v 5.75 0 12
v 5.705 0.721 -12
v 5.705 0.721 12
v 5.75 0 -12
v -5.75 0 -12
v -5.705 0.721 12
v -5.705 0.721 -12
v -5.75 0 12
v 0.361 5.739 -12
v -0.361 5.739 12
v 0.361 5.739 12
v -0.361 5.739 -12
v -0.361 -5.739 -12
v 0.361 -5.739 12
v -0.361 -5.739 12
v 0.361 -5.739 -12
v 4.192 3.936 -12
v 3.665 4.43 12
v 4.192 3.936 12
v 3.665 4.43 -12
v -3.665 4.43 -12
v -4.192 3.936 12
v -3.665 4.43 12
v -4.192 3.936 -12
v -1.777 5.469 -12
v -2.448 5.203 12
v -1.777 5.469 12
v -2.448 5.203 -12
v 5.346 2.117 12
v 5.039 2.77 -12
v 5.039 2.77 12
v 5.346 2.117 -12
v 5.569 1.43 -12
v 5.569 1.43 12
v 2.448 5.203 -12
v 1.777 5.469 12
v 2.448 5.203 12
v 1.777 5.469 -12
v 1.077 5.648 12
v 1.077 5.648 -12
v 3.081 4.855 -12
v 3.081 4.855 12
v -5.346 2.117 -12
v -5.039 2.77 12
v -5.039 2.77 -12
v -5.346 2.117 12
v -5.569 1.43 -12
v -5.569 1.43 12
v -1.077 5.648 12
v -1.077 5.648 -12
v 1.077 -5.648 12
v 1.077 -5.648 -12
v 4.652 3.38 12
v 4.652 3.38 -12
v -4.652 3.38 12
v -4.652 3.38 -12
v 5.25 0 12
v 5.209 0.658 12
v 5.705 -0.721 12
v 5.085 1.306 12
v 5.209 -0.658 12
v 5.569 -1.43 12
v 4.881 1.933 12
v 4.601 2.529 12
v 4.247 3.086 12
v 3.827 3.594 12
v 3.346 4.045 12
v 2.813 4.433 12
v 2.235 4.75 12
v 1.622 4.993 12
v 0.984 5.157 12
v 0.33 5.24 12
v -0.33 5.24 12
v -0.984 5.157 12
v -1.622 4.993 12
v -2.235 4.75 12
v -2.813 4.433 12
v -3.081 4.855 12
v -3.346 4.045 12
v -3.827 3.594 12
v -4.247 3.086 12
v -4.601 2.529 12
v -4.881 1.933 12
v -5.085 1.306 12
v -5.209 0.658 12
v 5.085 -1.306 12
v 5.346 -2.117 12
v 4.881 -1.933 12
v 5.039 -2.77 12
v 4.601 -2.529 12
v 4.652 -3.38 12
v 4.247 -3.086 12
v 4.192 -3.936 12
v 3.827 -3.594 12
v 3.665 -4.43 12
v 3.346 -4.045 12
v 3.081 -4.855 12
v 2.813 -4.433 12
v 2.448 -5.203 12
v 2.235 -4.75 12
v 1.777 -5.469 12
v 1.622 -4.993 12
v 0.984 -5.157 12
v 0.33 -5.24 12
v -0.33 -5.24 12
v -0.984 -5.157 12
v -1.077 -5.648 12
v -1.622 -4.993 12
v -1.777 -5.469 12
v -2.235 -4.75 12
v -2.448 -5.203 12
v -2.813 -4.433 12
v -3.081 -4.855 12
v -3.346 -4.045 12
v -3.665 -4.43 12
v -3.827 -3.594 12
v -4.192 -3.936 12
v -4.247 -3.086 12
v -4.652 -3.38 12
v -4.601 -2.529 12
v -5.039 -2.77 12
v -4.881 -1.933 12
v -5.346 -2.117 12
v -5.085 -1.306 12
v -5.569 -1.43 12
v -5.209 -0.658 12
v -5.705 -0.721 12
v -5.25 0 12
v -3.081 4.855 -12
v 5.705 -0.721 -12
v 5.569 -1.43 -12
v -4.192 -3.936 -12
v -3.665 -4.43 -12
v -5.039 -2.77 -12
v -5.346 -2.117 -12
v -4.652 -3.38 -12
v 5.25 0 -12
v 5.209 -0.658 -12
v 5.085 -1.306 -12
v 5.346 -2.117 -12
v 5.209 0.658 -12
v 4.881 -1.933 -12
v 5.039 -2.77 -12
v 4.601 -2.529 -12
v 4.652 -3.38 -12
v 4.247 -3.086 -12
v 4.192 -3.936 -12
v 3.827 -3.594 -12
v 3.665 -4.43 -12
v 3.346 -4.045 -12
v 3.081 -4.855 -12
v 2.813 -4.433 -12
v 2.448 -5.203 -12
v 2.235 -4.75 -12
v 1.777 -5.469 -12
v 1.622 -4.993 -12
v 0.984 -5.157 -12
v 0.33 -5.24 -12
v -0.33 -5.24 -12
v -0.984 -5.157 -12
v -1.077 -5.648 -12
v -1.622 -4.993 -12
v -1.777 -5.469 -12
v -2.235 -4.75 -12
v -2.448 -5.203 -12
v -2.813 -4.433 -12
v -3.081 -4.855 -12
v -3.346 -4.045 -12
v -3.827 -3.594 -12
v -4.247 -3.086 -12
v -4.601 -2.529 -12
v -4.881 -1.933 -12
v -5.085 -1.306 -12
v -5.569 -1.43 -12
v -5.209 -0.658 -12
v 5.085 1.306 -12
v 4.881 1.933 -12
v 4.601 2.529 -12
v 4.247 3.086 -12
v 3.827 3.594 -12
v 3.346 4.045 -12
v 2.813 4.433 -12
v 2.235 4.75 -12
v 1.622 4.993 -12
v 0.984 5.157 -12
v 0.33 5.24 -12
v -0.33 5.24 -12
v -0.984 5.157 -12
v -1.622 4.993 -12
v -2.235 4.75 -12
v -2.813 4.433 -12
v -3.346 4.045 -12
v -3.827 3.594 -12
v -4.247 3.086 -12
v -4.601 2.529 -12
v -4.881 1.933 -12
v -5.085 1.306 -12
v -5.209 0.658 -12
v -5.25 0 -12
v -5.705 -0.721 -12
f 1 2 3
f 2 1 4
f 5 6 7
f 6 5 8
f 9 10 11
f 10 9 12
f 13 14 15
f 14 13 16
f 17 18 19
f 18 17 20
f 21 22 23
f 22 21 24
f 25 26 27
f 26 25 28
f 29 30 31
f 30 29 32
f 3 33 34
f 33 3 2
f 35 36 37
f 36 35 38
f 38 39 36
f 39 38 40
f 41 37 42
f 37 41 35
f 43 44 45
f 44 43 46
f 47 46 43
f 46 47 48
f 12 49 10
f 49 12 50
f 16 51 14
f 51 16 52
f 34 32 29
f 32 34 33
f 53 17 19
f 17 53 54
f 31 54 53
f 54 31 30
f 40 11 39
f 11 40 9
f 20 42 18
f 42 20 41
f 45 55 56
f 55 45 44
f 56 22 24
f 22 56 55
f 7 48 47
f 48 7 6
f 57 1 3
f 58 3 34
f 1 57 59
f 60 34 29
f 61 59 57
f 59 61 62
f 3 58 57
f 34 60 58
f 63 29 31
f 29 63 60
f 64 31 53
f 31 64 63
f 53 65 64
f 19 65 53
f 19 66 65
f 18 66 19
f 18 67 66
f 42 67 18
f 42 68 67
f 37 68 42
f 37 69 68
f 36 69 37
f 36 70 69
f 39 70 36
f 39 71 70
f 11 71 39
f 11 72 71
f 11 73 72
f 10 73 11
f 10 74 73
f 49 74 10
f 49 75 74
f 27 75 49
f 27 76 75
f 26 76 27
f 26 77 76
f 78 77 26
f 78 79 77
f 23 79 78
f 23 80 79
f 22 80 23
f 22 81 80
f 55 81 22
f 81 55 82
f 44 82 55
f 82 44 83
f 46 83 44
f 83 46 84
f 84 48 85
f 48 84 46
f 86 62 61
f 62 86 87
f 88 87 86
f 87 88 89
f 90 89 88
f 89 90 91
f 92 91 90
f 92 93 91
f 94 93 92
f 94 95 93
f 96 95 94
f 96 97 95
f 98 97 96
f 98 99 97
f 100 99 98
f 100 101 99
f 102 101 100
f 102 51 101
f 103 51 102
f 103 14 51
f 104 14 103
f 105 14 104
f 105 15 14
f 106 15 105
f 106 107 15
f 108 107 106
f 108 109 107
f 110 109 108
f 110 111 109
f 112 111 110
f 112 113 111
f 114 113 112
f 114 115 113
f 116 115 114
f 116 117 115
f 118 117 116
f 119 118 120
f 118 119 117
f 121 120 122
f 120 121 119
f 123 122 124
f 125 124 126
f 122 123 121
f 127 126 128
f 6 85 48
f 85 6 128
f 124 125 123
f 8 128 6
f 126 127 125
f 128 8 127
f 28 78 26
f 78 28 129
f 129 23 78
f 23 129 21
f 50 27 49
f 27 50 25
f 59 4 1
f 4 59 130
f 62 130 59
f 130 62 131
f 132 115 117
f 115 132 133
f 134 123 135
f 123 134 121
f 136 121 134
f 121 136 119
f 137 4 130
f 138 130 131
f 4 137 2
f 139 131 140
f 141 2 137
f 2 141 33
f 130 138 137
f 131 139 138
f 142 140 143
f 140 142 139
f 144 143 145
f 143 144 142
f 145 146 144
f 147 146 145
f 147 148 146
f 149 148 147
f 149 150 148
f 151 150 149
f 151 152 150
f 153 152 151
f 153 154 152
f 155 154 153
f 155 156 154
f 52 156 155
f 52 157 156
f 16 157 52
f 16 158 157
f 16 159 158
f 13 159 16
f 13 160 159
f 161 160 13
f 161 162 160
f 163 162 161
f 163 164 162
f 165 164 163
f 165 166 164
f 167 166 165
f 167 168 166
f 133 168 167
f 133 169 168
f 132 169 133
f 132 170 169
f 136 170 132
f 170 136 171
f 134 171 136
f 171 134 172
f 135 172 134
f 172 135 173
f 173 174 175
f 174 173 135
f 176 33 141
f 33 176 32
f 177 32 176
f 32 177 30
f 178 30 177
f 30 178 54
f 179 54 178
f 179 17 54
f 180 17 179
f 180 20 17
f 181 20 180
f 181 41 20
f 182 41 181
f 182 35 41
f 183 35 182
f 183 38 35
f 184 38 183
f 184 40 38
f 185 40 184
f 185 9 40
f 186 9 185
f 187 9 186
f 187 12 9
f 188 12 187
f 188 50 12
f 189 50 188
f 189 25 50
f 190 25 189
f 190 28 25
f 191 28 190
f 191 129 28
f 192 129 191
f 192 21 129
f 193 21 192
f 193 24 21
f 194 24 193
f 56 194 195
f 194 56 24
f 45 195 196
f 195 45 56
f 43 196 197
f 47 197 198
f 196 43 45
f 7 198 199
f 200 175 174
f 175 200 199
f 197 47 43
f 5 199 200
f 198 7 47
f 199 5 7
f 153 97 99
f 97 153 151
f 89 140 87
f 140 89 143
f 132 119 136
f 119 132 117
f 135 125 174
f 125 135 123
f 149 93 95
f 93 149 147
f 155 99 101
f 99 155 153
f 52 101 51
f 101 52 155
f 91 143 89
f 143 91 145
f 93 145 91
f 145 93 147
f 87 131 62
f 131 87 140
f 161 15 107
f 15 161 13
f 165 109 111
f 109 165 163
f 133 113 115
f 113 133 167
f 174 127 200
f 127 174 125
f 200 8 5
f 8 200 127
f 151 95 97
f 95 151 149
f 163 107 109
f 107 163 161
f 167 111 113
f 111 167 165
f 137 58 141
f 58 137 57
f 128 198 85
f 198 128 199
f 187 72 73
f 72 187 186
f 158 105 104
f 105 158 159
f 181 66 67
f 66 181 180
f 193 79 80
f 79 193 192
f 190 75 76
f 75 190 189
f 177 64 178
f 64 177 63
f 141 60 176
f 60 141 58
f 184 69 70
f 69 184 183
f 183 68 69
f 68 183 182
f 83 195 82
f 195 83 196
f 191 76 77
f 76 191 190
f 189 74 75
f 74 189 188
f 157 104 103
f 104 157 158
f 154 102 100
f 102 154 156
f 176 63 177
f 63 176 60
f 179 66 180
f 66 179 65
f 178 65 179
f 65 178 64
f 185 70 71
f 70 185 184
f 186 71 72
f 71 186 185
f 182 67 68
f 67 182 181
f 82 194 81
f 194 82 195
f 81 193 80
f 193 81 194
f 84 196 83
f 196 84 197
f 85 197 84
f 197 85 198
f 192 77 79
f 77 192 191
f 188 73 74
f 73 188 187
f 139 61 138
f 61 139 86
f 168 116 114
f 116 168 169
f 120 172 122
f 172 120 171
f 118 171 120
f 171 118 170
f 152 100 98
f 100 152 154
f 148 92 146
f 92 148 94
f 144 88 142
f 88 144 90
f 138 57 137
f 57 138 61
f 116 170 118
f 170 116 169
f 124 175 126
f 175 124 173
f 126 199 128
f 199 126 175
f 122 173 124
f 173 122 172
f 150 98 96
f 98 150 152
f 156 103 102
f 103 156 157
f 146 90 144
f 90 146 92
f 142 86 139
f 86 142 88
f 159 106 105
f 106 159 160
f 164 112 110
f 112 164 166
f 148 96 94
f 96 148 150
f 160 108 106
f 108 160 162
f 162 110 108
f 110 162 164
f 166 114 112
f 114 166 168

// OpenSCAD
$fn = 50;


difference() {
	union() {
		translate(v = [0, 0, -12.0000000000]) {
			cylinder(h = 24, r = 5.7500000000);
		}
	}
	union() {
		translate(v = [0, 0, -100.0000000000]) {
			cylinder(h = 200, r = 5.2500000000);
		}
	}
}
